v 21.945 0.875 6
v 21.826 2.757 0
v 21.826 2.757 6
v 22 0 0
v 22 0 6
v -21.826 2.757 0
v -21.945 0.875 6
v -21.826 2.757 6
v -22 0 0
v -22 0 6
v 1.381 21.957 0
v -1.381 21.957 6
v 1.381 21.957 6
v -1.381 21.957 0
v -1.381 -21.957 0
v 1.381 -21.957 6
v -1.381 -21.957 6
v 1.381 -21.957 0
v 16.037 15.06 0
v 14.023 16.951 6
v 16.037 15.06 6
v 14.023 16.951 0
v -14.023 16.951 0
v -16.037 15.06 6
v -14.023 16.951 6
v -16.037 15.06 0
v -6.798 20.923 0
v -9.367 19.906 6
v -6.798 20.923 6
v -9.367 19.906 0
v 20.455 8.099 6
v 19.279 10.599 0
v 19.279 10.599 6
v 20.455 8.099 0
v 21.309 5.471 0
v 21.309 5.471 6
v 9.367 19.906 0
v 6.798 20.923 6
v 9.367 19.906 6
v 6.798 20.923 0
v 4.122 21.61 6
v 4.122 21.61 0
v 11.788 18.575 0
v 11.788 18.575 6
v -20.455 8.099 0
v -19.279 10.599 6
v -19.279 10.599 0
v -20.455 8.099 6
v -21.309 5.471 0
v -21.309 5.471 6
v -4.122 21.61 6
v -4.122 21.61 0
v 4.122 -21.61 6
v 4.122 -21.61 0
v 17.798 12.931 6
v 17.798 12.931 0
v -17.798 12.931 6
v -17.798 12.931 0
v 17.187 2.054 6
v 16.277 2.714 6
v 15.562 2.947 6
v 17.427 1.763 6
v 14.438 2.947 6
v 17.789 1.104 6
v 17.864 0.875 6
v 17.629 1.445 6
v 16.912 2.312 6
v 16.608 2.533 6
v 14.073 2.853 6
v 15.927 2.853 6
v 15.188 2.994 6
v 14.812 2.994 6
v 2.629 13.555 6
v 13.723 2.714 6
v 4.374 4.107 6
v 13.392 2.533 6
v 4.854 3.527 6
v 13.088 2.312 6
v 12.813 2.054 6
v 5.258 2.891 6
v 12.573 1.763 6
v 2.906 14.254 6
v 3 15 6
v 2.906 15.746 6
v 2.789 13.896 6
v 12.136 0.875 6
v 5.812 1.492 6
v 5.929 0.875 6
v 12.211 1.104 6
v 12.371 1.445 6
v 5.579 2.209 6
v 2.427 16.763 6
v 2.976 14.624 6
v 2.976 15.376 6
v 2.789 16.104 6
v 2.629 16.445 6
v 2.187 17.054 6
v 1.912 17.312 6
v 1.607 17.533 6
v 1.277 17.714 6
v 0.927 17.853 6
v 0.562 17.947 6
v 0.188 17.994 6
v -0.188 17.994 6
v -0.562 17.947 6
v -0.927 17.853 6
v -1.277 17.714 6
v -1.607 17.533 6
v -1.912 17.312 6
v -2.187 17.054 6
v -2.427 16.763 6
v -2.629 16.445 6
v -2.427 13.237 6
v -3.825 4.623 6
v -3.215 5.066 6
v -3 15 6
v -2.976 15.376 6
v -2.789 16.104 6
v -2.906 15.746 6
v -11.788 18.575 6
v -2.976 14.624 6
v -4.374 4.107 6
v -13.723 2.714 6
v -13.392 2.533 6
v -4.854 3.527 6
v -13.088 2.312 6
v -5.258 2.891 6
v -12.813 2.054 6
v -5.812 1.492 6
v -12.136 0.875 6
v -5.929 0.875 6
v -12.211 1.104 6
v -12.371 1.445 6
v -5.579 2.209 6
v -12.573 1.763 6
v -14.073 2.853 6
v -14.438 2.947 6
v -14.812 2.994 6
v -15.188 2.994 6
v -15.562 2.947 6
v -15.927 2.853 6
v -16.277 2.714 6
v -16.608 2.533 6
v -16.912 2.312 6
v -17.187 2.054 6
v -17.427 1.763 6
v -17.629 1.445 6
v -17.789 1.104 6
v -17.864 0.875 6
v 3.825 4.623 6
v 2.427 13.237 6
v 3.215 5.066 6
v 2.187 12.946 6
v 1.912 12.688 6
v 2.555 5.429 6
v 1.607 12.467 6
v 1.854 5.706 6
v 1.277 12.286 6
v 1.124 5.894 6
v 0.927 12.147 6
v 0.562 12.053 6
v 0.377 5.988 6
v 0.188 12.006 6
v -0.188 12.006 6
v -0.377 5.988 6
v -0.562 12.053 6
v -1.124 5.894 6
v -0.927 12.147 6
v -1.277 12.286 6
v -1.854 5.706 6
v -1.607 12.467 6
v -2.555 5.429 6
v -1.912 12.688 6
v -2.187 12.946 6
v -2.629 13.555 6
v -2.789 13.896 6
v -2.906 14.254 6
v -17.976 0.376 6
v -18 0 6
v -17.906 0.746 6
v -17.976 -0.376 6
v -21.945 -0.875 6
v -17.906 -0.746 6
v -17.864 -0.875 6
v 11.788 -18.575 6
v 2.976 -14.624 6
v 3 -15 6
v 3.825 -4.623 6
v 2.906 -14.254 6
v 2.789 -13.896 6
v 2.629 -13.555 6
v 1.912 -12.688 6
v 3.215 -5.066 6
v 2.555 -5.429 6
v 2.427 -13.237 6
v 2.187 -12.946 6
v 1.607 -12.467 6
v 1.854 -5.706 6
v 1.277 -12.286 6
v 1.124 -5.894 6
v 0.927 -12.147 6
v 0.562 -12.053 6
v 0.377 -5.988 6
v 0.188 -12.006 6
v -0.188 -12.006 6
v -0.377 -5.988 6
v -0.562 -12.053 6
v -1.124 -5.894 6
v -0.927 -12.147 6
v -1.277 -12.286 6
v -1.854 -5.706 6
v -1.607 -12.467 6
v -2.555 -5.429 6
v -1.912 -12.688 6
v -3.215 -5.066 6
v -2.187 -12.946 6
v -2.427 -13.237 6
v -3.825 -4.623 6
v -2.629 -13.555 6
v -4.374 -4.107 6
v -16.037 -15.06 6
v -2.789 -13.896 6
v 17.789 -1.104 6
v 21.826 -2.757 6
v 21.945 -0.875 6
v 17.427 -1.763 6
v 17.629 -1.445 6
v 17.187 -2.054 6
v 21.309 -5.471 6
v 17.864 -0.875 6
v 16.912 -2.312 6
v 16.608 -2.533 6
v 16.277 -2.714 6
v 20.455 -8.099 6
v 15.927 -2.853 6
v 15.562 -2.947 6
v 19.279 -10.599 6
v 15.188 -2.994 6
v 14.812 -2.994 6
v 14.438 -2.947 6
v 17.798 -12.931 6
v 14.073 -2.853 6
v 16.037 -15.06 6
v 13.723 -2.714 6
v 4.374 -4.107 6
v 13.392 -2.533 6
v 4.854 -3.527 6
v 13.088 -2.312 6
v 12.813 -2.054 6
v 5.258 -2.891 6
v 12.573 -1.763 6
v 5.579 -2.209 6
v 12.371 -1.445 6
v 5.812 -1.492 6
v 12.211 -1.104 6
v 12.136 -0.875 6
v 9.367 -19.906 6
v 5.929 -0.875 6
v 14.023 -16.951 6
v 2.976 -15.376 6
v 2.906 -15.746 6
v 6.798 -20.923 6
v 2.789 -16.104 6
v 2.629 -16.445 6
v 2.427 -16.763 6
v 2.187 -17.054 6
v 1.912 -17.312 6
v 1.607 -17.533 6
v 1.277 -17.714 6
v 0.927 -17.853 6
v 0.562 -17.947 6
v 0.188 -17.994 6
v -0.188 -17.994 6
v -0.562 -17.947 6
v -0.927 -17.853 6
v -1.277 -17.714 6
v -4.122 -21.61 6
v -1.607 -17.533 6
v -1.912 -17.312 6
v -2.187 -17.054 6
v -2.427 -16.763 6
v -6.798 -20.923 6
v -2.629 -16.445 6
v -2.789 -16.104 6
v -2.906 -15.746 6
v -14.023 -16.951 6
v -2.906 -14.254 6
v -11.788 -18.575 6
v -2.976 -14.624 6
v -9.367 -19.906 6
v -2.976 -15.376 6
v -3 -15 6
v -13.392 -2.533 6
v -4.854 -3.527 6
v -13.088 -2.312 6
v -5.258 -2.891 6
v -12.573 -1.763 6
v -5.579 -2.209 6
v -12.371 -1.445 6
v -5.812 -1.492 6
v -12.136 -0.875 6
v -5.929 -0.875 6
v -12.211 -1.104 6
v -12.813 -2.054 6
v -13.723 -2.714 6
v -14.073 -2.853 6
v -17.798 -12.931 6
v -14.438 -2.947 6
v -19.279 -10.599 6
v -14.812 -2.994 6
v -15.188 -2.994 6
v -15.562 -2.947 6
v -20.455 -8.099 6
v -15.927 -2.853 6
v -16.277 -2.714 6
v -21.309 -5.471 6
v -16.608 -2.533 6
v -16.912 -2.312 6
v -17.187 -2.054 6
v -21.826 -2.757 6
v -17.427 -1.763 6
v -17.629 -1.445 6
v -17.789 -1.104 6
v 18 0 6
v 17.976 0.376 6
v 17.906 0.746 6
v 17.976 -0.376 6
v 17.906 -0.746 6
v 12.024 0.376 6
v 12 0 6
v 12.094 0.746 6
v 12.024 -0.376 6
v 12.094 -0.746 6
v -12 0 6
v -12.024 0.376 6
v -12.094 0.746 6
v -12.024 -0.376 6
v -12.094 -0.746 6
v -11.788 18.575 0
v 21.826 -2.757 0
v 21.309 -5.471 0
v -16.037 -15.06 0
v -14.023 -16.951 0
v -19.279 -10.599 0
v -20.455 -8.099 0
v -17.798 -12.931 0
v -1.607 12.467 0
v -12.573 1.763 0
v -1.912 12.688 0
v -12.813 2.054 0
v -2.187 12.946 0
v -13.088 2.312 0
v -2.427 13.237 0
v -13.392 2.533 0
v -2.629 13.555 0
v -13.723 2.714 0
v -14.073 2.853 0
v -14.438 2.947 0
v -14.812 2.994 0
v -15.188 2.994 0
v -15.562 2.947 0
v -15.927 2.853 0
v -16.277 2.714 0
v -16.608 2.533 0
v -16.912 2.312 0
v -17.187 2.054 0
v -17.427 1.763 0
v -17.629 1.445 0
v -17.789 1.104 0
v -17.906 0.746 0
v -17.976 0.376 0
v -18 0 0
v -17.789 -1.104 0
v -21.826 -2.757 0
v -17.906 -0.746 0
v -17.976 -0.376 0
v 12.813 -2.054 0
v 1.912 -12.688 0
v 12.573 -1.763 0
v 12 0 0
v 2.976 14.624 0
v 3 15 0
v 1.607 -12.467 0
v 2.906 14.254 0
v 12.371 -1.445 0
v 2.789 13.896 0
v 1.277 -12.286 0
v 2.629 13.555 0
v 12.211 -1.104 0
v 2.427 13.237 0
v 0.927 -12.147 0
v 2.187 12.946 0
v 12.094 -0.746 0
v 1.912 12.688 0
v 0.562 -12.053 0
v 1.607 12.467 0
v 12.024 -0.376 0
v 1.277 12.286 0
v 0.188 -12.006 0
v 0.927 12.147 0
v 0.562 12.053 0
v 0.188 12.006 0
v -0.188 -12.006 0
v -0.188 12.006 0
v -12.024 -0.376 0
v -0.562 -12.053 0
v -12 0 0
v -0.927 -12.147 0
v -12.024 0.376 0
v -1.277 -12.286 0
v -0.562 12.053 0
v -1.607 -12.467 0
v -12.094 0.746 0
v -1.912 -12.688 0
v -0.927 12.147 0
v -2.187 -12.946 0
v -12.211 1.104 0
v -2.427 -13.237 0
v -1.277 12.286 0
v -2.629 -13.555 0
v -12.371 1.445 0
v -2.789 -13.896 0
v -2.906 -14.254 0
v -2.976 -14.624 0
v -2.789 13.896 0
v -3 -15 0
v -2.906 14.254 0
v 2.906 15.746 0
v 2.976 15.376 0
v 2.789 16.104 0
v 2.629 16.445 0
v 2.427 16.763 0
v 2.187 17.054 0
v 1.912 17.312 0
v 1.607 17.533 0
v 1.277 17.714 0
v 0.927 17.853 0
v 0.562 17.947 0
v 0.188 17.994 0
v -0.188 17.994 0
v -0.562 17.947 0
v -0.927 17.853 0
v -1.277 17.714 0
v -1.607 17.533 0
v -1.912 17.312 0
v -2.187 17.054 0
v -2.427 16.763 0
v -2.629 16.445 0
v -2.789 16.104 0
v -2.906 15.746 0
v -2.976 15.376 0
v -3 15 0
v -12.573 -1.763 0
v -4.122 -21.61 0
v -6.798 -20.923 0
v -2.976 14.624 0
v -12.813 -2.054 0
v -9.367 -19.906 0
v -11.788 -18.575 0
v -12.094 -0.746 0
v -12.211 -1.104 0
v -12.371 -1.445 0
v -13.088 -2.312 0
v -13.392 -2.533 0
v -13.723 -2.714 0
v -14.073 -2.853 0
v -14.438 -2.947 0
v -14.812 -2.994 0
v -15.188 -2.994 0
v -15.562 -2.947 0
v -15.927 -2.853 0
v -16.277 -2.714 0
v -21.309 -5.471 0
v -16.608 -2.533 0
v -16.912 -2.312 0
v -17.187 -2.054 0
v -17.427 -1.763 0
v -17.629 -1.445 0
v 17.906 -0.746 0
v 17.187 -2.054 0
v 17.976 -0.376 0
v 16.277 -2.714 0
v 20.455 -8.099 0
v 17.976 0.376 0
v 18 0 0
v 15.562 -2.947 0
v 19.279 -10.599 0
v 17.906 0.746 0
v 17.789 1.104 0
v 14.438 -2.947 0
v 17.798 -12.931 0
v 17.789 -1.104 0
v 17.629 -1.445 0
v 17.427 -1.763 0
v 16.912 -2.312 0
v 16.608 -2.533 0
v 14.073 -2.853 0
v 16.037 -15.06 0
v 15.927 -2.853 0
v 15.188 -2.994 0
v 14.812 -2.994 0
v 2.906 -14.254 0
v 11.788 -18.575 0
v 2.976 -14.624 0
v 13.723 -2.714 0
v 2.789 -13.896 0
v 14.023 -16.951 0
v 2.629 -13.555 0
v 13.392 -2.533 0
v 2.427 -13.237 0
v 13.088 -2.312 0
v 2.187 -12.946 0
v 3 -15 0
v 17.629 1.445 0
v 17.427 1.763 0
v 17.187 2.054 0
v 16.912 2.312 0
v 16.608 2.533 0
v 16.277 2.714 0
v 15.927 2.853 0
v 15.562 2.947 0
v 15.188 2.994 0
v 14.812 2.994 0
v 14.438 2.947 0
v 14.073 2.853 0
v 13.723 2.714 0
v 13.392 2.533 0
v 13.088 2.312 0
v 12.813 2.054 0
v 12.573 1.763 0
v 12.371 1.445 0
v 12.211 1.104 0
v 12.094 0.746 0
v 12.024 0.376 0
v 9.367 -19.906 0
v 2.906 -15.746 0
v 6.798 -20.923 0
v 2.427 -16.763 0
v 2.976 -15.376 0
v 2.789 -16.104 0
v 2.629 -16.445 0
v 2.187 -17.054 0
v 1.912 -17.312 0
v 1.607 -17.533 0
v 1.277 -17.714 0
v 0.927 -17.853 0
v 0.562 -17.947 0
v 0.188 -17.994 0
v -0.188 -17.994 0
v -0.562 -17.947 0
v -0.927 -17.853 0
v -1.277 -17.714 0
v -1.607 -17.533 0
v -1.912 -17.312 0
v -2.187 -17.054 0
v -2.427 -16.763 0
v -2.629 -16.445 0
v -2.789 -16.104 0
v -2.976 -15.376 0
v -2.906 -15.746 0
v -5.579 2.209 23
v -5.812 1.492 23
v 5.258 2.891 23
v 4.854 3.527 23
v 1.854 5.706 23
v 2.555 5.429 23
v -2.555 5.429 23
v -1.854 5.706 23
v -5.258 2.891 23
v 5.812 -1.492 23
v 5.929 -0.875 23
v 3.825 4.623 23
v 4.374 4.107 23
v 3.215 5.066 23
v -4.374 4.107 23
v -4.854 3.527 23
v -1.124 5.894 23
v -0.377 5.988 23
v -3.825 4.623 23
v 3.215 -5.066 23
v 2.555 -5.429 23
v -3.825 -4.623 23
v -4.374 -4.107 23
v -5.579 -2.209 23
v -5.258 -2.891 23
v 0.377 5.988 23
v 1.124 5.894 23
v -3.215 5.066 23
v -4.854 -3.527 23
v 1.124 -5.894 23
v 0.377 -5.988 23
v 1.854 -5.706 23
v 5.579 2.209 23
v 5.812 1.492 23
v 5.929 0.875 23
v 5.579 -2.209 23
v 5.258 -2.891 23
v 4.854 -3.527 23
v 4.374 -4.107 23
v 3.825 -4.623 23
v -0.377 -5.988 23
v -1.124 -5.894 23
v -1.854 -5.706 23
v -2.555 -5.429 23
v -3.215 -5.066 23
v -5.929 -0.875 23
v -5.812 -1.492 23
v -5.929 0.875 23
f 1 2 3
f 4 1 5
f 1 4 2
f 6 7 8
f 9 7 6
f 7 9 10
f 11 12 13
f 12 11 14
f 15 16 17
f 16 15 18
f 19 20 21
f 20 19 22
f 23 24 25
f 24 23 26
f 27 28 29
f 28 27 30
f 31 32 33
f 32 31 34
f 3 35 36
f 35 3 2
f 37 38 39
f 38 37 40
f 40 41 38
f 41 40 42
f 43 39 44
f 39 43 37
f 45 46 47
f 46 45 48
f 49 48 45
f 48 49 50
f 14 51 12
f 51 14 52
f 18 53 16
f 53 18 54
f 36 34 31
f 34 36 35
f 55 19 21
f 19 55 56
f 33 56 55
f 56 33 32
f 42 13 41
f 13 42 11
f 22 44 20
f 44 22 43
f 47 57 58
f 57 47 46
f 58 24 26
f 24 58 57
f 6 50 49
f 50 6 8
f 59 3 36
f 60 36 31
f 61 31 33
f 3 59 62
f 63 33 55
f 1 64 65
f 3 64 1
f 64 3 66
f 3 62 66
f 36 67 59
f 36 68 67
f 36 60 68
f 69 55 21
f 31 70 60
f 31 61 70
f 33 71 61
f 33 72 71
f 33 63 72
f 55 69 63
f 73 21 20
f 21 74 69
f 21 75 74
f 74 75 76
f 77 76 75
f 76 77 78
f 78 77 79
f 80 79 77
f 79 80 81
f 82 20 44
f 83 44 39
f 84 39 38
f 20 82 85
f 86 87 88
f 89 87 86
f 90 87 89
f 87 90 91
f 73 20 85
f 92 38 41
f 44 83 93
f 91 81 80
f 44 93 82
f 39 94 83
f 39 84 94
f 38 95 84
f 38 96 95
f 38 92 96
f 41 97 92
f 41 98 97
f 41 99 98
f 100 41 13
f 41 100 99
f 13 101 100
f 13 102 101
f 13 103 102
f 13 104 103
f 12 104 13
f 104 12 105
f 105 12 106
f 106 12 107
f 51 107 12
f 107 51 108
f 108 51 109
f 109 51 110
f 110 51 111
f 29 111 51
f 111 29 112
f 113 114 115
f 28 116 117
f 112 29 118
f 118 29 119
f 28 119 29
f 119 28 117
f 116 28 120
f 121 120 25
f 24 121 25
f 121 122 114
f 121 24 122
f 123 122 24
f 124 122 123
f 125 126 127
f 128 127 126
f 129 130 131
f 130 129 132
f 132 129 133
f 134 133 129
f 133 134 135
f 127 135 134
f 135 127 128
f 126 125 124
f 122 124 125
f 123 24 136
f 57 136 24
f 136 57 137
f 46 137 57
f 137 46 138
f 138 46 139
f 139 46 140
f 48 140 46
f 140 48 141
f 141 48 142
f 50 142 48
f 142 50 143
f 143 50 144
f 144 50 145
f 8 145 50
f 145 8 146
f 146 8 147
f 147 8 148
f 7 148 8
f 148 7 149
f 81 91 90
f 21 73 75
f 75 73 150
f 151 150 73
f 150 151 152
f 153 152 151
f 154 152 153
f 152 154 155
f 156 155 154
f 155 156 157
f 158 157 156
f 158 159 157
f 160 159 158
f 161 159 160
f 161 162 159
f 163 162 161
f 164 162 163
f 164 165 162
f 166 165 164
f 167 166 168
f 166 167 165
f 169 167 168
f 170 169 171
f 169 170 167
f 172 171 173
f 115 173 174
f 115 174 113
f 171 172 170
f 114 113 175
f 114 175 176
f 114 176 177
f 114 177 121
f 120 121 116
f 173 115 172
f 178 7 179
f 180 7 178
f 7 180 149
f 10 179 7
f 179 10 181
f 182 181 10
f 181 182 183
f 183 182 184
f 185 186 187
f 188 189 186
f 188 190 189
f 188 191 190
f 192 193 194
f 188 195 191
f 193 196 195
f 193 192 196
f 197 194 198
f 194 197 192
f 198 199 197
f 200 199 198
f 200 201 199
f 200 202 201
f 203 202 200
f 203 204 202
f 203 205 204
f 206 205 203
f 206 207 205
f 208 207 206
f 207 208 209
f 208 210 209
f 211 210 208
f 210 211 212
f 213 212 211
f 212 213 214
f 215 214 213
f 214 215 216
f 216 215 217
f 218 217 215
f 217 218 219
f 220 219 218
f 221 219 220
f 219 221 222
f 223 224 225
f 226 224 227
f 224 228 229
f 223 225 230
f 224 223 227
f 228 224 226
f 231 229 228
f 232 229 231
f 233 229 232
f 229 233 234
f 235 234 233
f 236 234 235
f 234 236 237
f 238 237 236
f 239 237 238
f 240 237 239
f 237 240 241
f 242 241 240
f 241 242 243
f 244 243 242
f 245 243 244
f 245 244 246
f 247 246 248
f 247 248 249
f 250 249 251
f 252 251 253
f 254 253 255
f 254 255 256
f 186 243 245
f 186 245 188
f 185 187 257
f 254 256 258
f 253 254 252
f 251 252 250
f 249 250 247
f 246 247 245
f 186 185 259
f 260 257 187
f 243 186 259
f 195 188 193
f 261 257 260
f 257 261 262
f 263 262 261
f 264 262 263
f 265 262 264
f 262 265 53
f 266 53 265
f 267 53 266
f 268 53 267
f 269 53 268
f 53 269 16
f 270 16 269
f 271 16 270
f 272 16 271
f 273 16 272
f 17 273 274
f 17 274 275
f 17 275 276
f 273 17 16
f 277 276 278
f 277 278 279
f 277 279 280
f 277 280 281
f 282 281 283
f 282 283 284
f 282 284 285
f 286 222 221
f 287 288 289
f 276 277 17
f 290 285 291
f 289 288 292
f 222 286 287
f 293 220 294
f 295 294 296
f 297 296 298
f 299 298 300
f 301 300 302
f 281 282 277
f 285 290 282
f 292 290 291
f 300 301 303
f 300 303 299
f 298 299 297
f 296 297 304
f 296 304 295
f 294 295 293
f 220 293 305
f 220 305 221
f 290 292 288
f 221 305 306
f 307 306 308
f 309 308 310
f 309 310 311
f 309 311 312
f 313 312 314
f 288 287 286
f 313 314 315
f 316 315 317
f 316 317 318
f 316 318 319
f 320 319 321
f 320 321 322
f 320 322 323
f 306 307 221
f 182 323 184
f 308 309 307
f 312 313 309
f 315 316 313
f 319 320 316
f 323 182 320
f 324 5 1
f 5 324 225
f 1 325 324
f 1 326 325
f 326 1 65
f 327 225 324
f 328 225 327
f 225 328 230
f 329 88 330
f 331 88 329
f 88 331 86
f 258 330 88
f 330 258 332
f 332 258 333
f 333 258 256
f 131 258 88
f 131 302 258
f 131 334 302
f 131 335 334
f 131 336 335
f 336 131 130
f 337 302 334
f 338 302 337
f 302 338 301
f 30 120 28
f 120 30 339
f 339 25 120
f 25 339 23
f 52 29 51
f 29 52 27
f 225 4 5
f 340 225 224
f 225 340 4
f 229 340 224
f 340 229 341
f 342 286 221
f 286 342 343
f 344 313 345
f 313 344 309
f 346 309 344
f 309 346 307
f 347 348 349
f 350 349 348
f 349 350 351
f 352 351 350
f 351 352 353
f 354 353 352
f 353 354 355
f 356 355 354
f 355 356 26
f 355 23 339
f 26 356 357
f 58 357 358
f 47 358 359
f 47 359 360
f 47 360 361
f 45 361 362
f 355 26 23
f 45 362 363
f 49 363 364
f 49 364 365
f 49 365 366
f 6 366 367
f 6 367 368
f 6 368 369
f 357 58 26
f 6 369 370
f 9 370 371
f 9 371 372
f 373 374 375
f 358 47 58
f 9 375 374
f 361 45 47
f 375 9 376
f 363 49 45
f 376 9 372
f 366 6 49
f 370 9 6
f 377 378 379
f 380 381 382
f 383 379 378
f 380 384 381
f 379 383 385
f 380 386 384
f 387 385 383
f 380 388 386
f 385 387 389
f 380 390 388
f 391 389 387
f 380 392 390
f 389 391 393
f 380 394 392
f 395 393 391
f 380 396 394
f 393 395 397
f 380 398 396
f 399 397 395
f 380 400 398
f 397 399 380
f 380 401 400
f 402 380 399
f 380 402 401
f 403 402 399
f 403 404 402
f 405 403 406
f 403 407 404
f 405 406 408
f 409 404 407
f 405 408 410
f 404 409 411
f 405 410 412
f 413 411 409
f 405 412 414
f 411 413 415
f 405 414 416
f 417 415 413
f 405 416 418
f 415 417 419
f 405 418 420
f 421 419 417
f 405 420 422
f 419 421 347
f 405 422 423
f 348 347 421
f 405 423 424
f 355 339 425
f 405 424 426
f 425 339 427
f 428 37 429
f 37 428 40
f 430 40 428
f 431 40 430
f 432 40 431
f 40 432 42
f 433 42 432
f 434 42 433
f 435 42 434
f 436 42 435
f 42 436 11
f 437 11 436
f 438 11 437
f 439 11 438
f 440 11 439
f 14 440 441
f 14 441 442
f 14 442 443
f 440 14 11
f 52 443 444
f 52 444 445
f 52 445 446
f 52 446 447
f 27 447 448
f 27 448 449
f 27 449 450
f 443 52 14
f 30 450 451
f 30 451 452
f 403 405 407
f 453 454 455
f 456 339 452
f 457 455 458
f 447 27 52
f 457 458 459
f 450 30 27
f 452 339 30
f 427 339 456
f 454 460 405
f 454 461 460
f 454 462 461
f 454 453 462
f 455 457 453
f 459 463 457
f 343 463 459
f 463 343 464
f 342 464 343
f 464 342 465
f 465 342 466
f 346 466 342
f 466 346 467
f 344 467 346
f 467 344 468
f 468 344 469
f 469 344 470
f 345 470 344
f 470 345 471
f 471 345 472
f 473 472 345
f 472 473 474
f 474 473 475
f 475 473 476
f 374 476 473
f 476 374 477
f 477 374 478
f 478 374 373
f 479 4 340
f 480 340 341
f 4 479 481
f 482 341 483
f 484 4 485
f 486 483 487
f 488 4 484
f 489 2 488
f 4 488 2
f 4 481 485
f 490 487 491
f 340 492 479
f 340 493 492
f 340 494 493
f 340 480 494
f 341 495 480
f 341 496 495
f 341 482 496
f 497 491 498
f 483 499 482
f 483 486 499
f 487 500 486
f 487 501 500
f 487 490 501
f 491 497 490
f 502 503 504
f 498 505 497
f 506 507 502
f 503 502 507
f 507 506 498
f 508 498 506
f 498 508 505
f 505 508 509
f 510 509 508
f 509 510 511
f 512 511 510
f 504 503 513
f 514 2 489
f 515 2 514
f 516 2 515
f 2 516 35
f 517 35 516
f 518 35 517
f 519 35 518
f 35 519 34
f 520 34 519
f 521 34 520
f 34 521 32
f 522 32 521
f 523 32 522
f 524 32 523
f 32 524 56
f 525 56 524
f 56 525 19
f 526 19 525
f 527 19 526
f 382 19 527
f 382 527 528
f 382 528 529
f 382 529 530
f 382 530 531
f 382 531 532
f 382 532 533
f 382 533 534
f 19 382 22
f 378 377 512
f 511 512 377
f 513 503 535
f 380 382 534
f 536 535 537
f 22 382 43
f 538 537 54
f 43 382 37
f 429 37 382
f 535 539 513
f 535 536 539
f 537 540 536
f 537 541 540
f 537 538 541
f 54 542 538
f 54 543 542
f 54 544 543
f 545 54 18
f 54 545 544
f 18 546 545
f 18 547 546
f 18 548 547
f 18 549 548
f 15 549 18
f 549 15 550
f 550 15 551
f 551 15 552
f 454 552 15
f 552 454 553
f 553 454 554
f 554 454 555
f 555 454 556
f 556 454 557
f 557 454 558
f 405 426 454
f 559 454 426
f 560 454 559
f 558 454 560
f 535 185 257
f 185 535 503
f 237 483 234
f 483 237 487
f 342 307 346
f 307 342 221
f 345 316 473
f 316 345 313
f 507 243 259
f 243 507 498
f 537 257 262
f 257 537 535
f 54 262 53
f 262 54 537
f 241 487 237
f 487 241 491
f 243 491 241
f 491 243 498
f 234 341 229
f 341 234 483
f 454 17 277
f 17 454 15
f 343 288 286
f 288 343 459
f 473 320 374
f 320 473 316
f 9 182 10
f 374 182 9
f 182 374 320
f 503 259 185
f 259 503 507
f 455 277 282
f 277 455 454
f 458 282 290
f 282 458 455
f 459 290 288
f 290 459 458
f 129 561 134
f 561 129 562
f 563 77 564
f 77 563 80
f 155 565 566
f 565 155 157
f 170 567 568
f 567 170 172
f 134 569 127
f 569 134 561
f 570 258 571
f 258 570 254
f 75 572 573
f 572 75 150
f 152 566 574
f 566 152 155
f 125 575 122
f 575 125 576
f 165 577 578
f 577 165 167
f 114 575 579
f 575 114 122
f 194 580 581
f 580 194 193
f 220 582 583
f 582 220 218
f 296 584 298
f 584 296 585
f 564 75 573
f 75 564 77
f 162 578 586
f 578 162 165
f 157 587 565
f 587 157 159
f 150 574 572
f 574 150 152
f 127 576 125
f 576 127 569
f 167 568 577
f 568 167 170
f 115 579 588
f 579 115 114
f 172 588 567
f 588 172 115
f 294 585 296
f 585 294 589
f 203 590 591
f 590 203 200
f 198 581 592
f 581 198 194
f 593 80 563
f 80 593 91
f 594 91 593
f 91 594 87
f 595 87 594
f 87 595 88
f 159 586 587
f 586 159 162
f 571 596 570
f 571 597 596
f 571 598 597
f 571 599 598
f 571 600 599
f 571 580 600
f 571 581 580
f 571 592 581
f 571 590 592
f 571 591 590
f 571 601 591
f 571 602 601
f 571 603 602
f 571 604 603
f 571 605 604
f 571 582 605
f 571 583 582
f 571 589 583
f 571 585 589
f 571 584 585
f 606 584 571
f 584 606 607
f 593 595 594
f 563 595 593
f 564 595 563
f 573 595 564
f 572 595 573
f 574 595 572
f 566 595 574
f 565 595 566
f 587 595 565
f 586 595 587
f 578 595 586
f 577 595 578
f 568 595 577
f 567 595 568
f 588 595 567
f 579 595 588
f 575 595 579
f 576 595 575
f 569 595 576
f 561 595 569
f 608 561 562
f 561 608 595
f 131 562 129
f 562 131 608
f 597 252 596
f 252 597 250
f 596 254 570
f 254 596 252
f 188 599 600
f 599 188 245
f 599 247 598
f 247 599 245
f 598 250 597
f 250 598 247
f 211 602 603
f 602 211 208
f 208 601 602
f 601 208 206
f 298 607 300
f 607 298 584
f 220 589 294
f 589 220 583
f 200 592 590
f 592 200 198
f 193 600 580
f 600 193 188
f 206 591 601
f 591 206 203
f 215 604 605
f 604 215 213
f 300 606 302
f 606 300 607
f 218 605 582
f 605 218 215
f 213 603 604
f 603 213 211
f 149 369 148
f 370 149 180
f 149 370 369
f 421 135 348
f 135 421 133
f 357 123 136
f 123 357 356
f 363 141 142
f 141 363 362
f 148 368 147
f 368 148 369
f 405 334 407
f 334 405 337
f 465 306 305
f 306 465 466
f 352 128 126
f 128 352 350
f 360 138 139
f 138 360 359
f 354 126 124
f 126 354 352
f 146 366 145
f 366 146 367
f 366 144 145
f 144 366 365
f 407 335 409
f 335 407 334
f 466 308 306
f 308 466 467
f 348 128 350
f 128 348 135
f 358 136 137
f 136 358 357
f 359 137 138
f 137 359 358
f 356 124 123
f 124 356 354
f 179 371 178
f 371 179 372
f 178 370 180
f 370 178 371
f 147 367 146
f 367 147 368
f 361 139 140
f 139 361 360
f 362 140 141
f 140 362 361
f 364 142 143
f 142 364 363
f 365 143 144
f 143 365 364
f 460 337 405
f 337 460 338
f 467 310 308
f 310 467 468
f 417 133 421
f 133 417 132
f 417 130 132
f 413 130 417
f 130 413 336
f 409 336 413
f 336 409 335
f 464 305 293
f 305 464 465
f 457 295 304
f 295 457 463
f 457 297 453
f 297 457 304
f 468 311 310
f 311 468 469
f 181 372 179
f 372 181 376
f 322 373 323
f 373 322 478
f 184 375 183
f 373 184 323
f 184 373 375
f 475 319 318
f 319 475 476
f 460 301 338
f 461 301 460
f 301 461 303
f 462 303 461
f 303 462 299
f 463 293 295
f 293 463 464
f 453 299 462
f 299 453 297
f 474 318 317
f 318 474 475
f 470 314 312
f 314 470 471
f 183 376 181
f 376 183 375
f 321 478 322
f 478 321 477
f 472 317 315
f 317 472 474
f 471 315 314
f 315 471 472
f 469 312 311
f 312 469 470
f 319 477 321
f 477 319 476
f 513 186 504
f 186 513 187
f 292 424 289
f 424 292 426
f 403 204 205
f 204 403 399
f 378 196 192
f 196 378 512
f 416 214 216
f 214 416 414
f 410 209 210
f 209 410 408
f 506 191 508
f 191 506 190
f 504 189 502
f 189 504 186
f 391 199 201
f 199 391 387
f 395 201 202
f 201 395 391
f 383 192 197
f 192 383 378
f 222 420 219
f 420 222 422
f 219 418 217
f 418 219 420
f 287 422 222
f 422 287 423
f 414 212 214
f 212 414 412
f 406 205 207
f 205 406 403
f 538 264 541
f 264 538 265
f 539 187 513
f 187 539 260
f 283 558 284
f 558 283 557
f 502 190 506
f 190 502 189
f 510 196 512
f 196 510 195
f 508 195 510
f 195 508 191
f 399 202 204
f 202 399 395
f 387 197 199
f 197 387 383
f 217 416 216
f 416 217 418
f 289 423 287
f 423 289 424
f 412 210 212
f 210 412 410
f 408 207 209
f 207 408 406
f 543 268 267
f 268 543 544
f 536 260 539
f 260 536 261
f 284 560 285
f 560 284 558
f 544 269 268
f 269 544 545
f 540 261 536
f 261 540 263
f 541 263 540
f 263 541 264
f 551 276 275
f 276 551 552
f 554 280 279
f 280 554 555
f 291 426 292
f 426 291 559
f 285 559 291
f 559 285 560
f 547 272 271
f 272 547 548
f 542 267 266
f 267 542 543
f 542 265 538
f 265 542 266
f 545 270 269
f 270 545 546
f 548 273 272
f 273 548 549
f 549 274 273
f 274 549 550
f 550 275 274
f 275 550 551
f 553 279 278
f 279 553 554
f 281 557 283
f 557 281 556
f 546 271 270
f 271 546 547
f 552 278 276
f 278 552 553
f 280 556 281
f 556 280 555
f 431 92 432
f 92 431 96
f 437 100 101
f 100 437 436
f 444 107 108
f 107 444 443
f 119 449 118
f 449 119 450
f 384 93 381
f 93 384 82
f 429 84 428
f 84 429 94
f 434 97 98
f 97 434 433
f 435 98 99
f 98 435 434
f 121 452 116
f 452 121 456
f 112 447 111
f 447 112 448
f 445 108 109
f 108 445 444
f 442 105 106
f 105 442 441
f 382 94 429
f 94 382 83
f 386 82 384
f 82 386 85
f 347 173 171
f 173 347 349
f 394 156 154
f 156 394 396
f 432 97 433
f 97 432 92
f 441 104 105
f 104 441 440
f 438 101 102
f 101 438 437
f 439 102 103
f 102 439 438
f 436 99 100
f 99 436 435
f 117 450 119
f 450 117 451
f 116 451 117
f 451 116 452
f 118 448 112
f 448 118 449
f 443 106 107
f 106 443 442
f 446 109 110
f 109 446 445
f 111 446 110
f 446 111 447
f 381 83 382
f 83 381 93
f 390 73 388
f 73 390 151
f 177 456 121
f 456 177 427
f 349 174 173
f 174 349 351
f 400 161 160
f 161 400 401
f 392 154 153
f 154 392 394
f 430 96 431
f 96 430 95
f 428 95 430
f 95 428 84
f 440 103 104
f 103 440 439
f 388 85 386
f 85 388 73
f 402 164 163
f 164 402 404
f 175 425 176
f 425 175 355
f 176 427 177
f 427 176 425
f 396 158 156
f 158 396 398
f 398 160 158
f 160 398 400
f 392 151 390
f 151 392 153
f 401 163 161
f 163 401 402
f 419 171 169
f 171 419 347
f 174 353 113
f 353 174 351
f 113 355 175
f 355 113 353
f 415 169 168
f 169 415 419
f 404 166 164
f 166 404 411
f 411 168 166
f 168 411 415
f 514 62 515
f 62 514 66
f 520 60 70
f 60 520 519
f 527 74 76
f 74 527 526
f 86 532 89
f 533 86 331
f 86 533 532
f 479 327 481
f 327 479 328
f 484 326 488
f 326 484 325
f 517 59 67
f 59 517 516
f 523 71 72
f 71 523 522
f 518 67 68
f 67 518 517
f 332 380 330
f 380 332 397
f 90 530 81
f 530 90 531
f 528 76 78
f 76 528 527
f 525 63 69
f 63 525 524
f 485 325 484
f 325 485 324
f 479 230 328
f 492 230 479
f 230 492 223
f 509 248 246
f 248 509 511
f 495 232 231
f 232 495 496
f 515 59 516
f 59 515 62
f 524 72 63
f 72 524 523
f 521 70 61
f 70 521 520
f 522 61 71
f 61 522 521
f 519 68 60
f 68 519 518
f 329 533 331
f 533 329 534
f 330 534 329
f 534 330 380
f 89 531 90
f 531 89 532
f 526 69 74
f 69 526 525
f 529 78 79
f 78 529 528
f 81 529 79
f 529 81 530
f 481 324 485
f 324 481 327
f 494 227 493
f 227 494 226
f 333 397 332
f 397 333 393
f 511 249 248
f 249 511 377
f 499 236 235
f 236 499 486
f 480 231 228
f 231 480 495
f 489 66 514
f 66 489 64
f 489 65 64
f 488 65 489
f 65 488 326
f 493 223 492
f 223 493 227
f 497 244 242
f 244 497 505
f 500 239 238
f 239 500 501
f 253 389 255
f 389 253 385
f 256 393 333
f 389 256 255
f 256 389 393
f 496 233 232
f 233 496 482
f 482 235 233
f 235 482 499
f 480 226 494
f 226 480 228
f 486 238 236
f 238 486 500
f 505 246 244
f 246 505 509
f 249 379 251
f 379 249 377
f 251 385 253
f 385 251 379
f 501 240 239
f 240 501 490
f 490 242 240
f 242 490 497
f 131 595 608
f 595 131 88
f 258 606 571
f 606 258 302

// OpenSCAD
$fn = 50;


difference() {
	union() {
		translate(v = [0, 0, 0.0000000000]) {
			rotate(a = [0, 0, 0]) {
				cylinder(h = 6, r = 22.0000000000);
			}
		}
		translate(v = [0, 0, 3.0000000000]) {
			rotate(a = [0, 0, 0]) {
				cylinder(h = 20, r = 6.0000000000);
			}
		}
	}
	union() {
		translate(v = [-15.0000000000, 0.0000000000, -125.0000000000]) {
			rotate(a = [0, 0, 0]) {
				cylinder(h = 250, r = 3.0000000000);
			}
		}
		translate(v = [0.0000000000, -15.0000000000, -125.0000000000]) {
			rotate(a = [0, 0, 0]) {
				cylinder(h = 250, r = 3.0000000000);
			}
		}
		translate(v = [0.0000000000, 15.0000000000, -125.0000000000]) {
			rotate(a = [0, 0, 0]) {
				cylinder(h = 250, r = 3.0000000000);
			}
		}
		translate(v = [15.0000000000, 0.0000000000, -125.0000000000]) {
			rotate(a = [0, 0, 0]) {
				cylinder(h = 250, r = 3.0000000000);
			}
		}
		translate(v = [-27.0000000000, -0.8750000000, 6]) {
			rotate(a = [0, 0, 0]) {
				cube(size = [54, 1.7500000000, 20]);
			}
		}
	}
}
